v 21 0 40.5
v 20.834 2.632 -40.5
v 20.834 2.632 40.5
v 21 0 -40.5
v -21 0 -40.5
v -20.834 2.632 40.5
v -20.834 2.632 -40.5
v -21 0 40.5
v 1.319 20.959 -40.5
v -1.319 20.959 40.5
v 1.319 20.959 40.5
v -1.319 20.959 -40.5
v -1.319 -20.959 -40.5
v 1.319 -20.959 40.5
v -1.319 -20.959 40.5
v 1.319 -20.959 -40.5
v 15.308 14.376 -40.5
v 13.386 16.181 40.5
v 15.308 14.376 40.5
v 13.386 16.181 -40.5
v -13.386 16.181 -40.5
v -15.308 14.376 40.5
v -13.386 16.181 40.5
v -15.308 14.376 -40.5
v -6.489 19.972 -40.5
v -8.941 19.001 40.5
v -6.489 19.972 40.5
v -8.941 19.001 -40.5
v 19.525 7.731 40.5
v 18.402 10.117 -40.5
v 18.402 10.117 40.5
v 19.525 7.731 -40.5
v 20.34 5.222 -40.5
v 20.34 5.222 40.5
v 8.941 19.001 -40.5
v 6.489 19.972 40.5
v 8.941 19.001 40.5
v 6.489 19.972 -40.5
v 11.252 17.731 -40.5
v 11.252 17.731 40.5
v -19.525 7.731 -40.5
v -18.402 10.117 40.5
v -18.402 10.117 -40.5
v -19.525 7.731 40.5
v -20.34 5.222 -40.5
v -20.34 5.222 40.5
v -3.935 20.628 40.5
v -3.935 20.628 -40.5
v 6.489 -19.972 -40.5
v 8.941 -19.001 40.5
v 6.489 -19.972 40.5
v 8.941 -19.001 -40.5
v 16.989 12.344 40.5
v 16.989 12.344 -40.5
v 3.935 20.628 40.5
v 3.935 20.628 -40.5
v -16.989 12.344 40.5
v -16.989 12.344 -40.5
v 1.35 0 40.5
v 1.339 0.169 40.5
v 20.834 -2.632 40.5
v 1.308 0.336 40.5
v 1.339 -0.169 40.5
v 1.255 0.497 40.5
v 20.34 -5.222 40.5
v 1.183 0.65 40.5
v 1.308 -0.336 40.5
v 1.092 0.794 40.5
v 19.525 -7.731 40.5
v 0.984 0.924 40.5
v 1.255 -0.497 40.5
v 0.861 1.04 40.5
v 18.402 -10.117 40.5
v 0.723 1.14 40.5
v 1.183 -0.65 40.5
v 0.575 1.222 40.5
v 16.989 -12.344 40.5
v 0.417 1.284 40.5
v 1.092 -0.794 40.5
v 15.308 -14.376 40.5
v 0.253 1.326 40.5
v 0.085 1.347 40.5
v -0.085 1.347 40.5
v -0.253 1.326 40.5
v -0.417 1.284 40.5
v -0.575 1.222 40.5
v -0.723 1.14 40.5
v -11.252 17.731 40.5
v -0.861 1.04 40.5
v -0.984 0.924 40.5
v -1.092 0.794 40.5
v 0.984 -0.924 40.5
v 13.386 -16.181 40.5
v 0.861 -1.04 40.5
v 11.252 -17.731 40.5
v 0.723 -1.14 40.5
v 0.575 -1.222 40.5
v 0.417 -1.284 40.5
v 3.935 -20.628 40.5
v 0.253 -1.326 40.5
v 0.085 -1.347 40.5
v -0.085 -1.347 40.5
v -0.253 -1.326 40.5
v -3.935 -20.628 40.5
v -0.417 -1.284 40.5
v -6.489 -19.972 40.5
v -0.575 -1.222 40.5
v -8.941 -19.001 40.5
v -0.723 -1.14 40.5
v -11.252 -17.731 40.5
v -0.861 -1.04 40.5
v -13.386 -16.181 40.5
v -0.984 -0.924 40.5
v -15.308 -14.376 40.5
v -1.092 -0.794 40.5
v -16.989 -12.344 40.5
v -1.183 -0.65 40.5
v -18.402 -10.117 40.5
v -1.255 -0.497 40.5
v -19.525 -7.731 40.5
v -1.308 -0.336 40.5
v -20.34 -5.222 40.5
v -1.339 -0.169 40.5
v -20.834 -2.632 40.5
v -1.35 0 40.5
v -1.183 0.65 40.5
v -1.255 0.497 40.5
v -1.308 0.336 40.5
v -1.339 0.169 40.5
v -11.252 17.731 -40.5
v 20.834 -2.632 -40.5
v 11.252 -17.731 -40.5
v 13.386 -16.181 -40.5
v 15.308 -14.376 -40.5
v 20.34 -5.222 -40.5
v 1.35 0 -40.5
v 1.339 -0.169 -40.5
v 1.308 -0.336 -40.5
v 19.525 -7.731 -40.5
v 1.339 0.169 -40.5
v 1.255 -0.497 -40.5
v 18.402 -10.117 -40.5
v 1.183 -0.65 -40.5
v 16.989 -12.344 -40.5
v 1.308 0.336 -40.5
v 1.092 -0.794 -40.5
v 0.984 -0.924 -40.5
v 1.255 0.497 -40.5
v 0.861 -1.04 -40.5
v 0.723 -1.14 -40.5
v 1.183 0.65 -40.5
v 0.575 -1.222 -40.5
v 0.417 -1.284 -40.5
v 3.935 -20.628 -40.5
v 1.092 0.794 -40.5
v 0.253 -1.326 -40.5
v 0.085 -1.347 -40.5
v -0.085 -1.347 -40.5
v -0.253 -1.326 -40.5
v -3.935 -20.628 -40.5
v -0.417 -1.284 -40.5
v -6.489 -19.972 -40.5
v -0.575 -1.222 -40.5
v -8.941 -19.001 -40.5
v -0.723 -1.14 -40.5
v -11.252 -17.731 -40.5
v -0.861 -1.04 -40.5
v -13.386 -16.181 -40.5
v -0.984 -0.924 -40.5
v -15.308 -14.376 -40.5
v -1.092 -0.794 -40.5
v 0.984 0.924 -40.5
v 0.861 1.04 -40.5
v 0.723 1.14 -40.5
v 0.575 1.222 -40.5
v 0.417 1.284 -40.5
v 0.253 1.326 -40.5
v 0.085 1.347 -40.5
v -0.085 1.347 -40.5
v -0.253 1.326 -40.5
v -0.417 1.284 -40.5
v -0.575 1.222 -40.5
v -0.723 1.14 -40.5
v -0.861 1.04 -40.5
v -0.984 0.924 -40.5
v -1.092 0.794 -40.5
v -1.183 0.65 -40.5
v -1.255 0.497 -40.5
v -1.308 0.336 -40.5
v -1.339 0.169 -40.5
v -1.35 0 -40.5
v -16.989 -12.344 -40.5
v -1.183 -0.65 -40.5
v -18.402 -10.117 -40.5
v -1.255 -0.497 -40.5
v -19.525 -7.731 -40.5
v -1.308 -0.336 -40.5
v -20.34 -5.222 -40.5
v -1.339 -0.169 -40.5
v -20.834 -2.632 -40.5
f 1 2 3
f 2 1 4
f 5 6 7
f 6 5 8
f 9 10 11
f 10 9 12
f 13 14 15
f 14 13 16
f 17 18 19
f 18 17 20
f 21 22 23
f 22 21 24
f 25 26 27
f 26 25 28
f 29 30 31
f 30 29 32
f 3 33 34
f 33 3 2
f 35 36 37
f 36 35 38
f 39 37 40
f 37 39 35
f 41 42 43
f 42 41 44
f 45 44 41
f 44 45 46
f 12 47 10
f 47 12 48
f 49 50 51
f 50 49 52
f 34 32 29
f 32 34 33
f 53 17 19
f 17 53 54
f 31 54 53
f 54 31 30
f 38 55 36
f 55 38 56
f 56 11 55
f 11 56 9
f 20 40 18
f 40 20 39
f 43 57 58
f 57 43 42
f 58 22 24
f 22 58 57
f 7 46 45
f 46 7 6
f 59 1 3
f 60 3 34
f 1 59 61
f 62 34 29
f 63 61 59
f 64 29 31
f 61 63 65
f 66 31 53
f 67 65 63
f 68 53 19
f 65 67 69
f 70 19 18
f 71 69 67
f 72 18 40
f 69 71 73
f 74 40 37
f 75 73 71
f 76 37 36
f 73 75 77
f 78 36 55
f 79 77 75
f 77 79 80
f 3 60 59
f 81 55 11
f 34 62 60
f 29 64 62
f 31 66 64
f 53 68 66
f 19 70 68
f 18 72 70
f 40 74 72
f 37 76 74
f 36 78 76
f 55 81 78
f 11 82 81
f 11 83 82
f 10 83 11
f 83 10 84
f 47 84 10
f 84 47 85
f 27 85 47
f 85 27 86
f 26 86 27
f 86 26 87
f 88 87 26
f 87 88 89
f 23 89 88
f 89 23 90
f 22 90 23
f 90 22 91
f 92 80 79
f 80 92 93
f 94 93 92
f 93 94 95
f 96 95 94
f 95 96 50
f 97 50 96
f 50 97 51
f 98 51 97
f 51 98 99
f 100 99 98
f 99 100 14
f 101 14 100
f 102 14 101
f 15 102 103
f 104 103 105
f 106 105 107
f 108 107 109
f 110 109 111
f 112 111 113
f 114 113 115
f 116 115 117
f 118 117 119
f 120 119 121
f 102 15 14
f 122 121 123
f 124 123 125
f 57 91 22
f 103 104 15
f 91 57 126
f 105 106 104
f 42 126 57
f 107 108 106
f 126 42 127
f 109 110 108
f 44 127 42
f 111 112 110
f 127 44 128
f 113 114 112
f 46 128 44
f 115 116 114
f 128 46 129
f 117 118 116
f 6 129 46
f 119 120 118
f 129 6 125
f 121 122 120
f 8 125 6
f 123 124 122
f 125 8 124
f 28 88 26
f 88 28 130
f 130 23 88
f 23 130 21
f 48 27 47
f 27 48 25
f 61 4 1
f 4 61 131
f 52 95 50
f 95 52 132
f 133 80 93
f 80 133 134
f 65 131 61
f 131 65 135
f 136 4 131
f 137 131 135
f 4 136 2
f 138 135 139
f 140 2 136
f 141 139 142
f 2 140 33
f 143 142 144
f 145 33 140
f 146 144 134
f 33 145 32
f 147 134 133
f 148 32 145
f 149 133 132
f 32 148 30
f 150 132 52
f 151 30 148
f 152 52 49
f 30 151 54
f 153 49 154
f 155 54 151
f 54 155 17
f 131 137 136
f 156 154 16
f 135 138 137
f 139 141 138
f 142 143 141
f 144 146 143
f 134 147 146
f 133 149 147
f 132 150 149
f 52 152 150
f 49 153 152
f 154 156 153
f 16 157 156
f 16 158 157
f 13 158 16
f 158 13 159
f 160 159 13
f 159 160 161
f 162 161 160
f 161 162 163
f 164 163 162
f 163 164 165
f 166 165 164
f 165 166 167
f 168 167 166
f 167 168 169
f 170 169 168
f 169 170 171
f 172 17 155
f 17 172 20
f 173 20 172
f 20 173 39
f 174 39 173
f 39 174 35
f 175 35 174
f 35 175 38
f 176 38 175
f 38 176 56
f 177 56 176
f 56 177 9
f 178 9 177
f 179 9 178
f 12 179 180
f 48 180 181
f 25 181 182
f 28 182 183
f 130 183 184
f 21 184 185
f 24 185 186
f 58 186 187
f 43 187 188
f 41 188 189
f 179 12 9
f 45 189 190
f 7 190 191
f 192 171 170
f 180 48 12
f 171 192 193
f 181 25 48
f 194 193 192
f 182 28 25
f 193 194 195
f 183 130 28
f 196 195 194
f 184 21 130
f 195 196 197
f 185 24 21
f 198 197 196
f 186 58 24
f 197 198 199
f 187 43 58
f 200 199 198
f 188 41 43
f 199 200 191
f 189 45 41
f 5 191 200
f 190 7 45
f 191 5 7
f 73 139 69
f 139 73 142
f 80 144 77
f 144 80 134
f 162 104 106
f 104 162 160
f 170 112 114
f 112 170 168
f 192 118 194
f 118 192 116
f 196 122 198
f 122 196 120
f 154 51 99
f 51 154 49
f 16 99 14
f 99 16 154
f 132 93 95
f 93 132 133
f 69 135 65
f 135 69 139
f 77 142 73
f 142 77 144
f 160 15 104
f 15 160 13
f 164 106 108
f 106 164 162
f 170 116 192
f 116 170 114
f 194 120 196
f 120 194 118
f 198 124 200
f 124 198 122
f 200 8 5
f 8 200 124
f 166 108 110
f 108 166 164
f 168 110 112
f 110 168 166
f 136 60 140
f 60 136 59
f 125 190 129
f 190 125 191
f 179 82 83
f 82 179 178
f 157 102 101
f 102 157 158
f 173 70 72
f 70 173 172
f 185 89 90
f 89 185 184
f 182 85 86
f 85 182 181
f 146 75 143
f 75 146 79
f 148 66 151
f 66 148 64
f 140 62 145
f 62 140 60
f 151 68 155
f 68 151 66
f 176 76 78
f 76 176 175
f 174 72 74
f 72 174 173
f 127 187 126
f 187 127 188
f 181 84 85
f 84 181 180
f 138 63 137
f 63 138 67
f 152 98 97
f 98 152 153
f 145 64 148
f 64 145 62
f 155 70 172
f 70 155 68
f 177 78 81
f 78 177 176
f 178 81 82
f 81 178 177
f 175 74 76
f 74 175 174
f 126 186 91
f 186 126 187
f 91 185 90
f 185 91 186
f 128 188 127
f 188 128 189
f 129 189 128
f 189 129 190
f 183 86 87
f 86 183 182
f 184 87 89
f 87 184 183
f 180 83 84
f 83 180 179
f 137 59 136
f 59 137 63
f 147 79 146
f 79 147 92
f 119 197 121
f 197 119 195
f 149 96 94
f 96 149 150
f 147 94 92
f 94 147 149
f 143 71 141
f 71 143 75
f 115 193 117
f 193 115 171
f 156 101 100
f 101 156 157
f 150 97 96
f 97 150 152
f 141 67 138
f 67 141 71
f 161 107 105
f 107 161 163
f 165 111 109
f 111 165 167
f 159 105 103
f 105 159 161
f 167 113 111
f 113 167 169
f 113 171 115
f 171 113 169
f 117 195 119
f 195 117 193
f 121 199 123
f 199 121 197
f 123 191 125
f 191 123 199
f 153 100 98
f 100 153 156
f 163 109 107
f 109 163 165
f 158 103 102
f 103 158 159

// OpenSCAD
$fn = 50;


difference() {
	union() {
		translate(v = [0, 0, -40.5000000000]) {
			cylinder(h = 81, r = 21.0000000000);
		}
	}
	union() {
		translate(v = [0, 0, -100.0000000000]) {
			cylinder(h = 200, r = 1.3500000000);
		}
	}
}
